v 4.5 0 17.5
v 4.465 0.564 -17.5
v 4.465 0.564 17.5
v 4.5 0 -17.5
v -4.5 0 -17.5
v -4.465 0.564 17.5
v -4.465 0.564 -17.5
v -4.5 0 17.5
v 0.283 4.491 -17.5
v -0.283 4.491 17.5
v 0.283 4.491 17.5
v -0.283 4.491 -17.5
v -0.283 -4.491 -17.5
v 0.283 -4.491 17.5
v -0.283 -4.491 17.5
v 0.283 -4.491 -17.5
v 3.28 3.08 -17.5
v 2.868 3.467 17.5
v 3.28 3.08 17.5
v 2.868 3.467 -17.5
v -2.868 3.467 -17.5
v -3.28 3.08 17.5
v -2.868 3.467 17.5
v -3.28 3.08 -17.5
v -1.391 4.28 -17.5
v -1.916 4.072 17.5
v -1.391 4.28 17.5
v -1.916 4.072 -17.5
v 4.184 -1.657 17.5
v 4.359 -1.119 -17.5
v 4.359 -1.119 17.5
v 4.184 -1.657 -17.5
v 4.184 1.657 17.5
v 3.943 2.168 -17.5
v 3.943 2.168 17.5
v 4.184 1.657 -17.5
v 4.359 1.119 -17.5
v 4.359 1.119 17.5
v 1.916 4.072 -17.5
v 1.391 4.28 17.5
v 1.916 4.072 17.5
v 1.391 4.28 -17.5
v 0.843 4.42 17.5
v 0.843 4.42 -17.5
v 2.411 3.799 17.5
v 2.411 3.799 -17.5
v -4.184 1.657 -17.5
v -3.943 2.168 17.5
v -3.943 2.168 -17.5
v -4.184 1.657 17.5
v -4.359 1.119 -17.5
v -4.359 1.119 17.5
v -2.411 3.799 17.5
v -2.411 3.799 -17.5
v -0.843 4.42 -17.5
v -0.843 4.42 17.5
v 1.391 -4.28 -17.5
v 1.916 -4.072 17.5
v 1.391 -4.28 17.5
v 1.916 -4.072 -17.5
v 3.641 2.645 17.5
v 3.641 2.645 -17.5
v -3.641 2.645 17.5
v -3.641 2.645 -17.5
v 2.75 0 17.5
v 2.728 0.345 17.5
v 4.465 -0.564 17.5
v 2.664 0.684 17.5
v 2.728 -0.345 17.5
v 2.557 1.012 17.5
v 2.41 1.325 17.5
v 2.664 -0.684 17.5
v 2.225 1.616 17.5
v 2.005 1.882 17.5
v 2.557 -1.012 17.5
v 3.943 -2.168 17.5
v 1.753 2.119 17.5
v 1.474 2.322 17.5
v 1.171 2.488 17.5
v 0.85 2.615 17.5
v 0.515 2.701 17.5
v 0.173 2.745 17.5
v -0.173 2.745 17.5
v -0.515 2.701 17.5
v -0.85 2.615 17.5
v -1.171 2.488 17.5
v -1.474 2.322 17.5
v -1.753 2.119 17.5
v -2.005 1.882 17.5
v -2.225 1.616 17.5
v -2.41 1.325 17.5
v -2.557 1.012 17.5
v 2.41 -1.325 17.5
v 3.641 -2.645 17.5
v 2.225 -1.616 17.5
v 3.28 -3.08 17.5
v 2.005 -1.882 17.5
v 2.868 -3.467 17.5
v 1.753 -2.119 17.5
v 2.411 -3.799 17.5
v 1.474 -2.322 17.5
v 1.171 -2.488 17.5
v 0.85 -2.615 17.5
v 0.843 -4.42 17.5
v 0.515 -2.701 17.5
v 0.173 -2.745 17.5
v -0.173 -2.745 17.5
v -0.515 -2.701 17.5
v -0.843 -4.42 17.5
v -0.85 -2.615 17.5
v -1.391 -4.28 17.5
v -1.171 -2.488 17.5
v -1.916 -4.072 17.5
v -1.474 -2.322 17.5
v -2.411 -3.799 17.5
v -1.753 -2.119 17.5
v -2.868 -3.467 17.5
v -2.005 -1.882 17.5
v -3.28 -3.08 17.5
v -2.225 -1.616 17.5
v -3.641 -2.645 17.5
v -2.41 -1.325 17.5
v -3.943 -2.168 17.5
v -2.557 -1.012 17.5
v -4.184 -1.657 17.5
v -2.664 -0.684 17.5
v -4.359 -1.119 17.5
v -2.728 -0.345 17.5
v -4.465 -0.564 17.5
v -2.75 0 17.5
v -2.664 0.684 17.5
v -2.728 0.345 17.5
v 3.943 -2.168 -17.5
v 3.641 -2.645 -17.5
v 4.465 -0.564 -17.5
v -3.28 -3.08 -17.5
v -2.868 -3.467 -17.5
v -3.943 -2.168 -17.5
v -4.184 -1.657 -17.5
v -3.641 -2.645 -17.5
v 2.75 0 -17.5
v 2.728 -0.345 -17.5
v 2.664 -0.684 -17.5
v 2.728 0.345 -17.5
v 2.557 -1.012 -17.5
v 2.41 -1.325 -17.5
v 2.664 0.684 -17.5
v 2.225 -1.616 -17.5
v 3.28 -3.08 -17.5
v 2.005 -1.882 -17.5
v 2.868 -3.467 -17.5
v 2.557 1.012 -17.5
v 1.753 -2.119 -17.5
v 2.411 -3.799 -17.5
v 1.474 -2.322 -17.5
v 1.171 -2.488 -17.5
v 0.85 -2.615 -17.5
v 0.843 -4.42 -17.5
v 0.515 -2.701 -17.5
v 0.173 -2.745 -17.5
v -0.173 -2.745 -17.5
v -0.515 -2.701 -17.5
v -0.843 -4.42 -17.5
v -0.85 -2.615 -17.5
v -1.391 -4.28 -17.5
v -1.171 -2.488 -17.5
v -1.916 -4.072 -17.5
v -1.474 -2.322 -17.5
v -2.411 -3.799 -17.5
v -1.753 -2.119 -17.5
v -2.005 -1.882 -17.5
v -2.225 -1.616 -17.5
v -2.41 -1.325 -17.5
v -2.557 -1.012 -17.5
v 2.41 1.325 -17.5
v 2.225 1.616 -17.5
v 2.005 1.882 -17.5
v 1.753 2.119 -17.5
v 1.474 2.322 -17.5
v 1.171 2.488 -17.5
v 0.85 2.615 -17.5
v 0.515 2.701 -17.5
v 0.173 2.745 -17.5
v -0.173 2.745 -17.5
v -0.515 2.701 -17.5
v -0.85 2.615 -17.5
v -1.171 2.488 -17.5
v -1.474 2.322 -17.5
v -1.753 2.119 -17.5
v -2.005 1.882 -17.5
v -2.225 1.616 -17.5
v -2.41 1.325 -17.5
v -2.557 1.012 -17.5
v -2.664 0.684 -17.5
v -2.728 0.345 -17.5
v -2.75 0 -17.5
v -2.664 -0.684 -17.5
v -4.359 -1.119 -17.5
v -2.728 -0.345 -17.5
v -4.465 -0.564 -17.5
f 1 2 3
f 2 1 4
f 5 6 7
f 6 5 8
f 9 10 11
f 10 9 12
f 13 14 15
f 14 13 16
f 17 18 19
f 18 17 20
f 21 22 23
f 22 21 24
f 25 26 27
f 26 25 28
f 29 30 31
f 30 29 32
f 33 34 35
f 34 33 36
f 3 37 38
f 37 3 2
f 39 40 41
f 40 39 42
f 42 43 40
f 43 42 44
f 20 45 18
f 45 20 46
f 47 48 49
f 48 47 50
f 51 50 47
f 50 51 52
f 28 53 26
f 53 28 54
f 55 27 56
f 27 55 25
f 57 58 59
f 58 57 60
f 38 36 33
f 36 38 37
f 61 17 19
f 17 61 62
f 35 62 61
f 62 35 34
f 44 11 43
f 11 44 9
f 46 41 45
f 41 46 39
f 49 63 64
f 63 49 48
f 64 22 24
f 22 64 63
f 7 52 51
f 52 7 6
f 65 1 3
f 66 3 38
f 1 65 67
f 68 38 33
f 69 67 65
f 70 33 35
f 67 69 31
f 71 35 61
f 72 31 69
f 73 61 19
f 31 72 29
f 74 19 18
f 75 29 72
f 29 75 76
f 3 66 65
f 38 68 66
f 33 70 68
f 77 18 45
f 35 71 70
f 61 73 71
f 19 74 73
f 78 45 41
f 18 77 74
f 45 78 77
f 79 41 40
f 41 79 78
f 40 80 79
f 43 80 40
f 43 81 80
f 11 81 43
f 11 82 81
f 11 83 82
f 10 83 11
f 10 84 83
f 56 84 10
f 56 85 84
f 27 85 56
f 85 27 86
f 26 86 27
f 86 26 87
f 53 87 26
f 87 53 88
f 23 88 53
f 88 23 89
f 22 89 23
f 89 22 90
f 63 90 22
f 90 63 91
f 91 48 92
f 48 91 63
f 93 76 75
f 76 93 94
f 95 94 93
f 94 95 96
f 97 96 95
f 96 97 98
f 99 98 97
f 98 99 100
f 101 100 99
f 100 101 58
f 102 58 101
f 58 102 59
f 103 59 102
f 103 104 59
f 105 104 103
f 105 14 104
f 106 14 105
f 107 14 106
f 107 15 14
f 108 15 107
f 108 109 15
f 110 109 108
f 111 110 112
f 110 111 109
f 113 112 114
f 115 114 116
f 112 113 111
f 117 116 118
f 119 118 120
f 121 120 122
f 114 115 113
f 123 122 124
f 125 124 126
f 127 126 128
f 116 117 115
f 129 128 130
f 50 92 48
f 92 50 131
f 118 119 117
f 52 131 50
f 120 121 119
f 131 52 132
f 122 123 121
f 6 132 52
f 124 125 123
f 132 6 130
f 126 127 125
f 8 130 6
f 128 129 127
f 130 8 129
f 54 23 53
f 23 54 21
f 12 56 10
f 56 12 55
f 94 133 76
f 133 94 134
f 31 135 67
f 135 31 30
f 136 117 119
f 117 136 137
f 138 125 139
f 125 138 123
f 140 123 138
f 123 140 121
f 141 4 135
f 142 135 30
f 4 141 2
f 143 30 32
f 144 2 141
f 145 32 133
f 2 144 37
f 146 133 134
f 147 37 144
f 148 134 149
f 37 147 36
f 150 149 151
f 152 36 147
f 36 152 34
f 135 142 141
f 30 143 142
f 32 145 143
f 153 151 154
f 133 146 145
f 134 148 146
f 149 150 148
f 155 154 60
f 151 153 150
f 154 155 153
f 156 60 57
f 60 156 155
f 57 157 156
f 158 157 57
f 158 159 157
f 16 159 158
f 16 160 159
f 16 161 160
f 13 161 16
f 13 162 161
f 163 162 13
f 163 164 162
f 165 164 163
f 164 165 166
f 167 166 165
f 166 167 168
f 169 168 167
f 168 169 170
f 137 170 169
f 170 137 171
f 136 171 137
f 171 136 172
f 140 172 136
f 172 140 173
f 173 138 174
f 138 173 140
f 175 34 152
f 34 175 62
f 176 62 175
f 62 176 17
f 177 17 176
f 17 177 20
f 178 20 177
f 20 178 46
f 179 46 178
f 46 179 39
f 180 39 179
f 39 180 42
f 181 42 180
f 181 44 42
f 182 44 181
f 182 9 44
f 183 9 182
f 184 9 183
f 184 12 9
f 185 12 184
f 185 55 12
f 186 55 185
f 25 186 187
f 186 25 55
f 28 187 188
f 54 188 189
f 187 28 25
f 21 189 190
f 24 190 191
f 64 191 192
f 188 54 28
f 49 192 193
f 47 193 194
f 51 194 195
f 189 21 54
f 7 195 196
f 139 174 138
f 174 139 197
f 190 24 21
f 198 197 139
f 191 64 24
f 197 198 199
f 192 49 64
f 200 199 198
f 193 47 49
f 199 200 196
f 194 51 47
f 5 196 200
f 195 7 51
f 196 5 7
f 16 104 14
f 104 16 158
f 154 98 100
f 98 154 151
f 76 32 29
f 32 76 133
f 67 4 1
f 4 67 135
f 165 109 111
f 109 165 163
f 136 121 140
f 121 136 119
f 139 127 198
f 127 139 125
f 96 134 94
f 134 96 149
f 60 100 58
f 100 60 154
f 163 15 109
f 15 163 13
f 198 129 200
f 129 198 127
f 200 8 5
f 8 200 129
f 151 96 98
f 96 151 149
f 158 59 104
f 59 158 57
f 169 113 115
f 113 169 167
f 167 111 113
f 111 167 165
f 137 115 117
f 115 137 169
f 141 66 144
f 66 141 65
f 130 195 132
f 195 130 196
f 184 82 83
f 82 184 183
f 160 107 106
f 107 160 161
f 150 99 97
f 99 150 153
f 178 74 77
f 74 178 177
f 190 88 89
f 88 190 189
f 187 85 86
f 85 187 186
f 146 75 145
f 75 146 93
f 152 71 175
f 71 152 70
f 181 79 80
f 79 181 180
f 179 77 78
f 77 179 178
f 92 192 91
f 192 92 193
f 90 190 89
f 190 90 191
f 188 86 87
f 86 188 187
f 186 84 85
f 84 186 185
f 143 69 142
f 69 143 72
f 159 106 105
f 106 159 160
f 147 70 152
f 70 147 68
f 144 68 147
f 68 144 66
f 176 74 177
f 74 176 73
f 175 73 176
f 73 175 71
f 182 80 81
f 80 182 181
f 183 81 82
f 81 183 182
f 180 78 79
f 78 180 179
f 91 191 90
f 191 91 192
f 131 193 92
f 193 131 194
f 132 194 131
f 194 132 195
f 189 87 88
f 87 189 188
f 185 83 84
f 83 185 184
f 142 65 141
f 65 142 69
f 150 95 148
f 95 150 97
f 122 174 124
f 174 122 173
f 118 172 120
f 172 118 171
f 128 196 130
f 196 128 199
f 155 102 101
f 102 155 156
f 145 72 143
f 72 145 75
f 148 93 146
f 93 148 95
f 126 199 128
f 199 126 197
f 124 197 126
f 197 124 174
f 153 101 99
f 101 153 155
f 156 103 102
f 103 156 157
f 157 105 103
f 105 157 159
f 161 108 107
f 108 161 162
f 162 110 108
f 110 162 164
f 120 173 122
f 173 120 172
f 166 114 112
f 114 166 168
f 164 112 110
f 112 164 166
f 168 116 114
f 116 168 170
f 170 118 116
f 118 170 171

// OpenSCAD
$fn = 50;


difference() {
	union() {
		translate(v = [0, 0, -17.5000000000]) {
			cylinder(h = 35, r = 4.5000000000);
		}
	}
	union() {
		translate(v = [0, 0, -100.0000000000]) {
			cylinder(h = 200, r = 2.7500000000);
		}
	}
}
